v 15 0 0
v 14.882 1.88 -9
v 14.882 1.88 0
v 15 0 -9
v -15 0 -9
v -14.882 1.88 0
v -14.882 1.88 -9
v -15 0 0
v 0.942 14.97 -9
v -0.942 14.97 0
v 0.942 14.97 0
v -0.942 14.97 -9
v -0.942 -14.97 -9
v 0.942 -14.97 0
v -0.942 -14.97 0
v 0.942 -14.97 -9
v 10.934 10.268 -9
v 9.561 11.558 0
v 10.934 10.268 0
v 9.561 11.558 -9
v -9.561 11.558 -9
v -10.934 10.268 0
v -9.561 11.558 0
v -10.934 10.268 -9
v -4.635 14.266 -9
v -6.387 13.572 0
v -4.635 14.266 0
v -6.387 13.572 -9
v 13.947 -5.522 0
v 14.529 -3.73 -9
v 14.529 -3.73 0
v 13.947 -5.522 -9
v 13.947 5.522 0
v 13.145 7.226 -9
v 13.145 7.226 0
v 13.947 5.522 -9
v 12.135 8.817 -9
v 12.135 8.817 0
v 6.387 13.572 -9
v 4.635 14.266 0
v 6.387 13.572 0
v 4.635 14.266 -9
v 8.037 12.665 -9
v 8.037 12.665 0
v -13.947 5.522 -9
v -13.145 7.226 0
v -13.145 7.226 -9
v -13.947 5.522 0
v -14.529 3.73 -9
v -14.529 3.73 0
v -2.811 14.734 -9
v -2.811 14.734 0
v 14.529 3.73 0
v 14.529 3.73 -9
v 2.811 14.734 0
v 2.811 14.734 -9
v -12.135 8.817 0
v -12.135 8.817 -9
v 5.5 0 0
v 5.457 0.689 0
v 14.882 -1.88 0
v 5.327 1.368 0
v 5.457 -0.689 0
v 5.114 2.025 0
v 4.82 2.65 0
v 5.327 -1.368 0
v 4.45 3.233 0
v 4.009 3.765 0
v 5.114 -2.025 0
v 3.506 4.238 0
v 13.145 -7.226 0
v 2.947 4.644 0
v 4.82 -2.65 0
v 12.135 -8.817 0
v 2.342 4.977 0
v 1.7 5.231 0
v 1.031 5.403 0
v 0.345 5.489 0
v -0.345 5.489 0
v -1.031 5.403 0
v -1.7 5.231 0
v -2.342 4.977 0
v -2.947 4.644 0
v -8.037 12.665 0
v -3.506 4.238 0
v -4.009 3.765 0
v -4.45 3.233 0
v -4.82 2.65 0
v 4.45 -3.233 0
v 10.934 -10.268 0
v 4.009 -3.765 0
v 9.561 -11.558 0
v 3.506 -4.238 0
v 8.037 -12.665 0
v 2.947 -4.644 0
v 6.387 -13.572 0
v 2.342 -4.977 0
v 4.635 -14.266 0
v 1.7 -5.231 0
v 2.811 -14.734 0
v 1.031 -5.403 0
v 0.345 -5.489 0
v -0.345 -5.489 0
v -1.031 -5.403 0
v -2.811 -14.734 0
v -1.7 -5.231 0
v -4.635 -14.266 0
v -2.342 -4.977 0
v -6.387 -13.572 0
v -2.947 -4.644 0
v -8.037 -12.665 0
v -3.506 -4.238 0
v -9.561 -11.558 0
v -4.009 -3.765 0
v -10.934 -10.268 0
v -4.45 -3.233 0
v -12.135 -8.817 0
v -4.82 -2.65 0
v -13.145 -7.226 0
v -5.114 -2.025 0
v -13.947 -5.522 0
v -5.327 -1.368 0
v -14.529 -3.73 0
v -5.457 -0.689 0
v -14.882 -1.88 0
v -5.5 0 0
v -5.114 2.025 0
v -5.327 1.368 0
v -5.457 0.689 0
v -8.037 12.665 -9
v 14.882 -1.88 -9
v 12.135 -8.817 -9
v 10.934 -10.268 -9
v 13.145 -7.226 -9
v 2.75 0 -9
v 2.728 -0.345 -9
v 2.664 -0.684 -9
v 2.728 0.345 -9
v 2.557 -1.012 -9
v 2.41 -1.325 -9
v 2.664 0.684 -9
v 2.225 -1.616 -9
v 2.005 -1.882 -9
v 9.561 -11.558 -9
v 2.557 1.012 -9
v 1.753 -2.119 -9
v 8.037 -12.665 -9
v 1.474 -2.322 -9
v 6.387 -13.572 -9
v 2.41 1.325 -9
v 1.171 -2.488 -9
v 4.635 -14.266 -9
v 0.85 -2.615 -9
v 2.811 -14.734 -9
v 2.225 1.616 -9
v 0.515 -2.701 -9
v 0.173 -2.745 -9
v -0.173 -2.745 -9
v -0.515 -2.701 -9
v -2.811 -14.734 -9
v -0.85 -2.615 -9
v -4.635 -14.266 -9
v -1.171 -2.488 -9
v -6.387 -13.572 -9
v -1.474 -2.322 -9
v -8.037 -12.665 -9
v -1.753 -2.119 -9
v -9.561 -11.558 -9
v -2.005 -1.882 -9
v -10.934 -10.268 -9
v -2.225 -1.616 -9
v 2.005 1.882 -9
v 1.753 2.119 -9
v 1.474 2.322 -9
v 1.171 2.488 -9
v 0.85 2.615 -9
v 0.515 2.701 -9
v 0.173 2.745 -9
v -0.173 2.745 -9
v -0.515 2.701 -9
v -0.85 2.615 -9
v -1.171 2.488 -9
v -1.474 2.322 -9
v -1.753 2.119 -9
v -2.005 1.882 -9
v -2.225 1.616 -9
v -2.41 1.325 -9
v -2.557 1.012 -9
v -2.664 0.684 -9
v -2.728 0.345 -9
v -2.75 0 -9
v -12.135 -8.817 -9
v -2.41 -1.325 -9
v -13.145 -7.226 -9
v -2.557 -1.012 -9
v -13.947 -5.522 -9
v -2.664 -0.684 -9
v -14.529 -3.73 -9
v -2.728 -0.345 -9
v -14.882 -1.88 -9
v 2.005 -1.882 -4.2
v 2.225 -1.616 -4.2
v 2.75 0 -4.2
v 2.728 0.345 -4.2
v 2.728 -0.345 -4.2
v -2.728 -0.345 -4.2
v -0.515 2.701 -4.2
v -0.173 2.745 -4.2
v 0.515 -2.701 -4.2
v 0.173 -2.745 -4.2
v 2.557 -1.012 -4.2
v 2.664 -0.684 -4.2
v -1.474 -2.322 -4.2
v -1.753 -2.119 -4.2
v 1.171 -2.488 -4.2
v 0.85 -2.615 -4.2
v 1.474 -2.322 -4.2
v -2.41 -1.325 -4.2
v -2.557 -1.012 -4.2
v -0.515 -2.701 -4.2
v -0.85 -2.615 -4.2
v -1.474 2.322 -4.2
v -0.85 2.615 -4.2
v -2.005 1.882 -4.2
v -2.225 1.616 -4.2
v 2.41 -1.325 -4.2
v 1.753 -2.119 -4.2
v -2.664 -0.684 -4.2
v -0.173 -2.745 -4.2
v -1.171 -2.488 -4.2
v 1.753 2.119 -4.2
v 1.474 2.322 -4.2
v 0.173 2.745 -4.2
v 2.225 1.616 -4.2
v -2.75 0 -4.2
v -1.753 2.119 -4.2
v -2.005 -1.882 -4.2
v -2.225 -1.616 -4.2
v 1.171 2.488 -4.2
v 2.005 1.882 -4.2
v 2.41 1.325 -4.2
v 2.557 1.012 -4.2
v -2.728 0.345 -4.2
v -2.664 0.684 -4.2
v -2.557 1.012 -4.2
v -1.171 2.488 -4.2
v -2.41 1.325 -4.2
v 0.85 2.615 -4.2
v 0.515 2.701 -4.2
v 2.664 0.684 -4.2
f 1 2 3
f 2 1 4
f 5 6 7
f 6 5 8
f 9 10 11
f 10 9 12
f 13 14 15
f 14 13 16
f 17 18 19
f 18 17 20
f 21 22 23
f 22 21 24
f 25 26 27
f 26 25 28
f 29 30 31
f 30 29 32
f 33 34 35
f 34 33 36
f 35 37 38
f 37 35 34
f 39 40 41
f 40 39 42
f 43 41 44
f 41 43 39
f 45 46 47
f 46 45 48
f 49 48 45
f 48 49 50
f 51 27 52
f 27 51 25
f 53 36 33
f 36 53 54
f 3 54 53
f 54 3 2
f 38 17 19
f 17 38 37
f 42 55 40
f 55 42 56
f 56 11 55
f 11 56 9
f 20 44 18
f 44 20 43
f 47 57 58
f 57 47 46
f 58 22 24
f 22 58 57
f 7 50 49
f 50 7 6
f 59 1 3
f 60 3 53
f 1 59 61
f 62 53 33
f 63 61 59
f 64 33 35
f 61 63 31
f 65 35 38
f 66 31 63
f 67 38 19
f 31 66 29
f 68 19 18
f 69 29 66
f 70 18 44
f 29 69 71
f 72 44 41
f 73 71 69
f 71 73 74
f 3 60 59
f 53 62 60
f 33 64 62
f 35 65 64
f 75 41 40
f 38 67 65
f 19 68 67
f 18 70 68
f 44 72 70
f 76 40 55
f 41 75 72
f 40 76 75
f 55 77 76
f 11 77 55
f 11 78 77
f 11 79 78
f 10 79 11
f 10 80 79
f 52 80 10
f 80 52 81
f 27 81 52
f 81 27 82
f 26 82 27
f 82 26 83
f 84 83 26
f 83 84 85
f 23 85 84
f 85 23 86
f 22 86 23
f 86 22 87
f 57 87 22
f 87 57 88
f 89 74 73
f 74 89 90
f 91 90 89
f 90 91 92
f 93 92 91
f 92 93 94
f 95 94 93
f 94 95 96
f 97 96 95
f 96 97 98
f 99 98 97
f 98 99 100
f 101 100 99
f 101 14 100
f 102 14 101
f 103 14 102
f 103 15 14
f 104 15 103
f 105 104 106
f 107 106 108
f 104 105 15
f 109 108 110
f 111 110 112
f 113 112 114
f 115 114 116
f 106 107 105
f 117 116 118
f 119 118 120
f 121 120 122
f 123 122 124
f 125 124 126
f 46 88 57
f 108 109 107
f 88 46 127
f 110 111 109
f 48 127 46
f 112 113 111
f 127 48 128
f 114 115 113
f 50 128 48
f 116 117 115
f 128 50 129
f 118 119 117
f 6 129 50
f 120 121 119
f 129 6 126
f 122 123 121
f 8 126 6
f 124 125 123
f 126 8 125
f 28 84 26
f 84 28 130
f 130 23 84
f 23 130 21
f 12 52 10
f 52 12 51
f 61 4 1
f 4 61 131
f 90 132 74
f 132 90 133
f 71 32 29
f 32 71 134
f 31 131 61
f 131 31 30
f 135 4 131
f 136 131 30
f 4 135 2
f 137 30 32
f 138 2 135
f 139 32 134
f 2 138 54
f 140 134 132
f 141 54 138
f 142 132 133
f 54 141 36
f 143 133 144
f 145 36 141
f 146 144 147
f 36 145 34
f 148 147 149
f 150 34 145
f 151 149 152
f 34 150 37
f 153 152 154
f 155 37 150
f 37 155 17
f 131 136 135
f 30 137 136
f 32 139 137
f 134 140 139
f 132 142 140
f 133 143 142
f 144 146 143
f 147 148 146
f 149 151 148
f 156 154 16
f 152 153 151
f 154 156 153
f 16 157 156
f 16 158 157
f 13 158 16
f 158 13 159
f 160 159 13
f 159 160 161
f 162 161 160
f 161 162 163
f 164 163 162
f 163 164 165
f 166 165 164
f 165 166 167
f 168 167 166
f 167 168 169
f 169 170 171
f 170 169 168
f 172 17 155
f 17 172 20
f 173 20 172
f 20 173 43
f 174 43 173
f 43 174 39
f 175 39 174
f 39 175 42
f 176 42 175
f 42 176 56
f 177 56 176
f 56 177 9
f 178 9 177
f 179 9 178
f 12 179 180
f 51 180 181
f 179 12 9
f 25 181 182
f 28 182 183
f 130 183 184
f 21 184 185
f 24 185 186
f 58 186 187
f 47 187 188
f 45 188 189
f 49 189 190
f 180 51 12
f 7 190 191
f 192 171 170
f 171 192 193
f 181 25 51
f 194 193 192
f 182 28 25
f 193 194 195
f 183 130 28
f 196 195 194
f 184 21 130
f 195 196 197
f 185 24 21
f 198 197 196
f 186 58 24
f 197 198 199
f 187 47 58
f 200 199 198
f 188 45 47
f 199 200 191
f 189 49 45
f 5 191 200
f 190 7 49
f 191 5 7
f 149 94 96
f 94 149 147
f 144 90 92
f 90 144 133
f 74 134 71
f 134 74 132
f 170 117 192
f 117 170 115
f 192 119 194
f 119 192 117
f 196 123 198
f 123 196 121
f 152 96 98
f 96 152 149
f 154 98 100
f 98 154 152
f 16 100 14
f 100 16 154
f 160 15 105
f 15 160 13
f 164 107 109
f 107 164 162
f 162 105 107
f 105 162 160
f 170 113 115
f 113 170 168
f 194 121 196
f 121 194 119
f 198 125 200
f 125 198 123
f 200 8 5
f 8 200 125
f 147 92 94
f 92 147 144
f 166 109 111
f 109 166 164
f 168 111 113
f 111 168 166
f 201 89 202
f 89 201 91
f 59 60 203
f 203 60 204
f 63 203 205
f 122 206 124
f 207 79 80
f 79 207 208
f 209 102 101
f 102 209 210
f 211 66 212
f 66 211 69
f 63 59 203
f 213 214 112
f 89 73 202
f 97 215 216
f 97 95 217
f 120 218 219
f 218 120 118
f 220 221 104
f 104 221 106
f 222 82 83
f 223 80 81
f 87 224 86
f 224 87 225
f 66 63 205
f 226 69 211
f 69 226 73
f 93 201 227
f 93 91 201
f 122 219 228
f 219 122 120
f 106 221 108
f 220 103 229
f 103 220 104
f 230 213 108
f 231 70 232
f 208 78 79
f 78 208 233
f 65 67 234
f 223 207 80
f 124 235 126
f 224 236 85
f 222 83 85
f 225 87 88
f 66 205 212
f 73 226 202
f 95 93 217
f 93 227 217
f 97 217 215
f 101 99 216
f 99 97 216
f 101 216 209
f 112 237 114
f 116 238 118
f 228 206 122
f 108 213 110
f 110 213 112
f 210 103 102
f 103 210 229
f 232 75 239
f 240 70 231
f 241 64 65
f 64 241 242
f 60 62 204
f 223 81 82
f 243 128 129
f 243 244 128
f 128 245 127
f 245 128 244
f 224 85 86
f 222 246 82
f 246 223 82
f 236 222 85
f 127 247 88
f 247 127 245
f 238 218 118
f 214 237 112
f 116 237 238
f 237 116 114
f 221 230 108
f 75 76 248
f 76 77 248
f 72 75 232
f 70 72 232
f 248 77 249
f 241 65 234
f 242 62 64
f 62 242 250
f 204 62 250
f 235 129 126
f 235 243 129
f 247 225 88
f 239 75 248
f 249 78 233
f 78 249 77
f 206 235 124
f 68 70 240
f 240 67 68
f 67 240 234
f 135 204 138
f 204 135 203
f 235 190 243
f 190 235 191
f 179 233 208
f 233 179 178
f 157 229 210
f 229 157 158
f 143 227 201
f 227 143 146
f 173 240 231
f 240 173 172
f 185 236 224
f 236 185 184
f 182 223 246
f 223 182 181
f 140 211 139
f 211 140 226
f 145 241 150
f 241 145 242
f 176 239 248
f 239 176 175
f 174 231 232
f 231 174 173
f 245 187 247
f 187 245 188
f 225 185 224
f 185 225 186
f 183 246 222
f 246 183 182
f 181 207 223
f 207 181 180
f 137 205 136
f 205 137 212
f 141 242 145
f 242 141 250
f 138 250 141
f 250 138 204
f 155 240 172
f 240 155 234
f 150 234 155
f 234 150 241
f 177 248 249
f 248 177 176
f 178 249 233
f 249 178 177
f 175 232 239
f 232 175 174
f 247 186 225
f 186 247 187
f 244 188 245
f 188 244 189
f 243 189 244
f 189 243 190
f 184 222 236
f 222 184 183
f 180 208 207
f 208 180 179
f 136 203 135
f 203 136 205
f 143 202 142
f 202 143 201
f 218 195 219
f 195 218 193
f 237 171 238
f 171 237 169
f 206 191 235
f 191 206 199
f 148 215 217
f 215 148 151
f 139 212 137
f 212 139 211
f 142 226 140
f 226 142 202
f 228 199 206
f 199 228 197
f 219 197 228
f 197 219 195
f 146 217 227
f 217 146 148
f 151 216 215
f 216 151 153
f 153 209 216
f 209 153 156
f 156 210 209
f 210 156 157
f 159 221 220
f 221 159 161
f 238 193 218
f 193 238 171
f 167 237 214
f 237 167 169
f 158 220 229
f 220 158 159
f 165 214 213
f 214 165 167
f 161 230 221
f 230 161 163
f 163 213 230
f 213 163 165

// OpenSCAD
$fn = 50;


difference() {
	union() {
		translate(v = [0, 0, -9.0000000000]) {
			cylinder(h = 9, r = 15.0000000000);
		}
		translate(v = [0, 0, -9.0000000000]) {
			cylinder(h = 9, r = 2.8750000000);
		}
	}
	union() {
		translate(v = [0, 0, 0]) {
			rotate(a = [0, 0, 0]) {
				difference() {
					union() {
						#translate(v = [0, 0, -9.0000000000]) {
							cylinder(h = 9, r = 2.2500000000);
						}
						#translate(v = [0, 0, -4.2000000000]) {
							cylinder(h = 4.2000000000, r1 = 2.7500000000, r2 = 5.5000000000);
						}
						#translate(v = [0, 0, -9.0000000000]) {
							cylinder(h = 9, r = 2.7500000000);
						}
						#translate(v = [0, 0, -9.0000000000]) {
							cylinder(h = 9, r = 2.2500000000);
						}
					}
					union();
				}
			}
		}
	}
}
